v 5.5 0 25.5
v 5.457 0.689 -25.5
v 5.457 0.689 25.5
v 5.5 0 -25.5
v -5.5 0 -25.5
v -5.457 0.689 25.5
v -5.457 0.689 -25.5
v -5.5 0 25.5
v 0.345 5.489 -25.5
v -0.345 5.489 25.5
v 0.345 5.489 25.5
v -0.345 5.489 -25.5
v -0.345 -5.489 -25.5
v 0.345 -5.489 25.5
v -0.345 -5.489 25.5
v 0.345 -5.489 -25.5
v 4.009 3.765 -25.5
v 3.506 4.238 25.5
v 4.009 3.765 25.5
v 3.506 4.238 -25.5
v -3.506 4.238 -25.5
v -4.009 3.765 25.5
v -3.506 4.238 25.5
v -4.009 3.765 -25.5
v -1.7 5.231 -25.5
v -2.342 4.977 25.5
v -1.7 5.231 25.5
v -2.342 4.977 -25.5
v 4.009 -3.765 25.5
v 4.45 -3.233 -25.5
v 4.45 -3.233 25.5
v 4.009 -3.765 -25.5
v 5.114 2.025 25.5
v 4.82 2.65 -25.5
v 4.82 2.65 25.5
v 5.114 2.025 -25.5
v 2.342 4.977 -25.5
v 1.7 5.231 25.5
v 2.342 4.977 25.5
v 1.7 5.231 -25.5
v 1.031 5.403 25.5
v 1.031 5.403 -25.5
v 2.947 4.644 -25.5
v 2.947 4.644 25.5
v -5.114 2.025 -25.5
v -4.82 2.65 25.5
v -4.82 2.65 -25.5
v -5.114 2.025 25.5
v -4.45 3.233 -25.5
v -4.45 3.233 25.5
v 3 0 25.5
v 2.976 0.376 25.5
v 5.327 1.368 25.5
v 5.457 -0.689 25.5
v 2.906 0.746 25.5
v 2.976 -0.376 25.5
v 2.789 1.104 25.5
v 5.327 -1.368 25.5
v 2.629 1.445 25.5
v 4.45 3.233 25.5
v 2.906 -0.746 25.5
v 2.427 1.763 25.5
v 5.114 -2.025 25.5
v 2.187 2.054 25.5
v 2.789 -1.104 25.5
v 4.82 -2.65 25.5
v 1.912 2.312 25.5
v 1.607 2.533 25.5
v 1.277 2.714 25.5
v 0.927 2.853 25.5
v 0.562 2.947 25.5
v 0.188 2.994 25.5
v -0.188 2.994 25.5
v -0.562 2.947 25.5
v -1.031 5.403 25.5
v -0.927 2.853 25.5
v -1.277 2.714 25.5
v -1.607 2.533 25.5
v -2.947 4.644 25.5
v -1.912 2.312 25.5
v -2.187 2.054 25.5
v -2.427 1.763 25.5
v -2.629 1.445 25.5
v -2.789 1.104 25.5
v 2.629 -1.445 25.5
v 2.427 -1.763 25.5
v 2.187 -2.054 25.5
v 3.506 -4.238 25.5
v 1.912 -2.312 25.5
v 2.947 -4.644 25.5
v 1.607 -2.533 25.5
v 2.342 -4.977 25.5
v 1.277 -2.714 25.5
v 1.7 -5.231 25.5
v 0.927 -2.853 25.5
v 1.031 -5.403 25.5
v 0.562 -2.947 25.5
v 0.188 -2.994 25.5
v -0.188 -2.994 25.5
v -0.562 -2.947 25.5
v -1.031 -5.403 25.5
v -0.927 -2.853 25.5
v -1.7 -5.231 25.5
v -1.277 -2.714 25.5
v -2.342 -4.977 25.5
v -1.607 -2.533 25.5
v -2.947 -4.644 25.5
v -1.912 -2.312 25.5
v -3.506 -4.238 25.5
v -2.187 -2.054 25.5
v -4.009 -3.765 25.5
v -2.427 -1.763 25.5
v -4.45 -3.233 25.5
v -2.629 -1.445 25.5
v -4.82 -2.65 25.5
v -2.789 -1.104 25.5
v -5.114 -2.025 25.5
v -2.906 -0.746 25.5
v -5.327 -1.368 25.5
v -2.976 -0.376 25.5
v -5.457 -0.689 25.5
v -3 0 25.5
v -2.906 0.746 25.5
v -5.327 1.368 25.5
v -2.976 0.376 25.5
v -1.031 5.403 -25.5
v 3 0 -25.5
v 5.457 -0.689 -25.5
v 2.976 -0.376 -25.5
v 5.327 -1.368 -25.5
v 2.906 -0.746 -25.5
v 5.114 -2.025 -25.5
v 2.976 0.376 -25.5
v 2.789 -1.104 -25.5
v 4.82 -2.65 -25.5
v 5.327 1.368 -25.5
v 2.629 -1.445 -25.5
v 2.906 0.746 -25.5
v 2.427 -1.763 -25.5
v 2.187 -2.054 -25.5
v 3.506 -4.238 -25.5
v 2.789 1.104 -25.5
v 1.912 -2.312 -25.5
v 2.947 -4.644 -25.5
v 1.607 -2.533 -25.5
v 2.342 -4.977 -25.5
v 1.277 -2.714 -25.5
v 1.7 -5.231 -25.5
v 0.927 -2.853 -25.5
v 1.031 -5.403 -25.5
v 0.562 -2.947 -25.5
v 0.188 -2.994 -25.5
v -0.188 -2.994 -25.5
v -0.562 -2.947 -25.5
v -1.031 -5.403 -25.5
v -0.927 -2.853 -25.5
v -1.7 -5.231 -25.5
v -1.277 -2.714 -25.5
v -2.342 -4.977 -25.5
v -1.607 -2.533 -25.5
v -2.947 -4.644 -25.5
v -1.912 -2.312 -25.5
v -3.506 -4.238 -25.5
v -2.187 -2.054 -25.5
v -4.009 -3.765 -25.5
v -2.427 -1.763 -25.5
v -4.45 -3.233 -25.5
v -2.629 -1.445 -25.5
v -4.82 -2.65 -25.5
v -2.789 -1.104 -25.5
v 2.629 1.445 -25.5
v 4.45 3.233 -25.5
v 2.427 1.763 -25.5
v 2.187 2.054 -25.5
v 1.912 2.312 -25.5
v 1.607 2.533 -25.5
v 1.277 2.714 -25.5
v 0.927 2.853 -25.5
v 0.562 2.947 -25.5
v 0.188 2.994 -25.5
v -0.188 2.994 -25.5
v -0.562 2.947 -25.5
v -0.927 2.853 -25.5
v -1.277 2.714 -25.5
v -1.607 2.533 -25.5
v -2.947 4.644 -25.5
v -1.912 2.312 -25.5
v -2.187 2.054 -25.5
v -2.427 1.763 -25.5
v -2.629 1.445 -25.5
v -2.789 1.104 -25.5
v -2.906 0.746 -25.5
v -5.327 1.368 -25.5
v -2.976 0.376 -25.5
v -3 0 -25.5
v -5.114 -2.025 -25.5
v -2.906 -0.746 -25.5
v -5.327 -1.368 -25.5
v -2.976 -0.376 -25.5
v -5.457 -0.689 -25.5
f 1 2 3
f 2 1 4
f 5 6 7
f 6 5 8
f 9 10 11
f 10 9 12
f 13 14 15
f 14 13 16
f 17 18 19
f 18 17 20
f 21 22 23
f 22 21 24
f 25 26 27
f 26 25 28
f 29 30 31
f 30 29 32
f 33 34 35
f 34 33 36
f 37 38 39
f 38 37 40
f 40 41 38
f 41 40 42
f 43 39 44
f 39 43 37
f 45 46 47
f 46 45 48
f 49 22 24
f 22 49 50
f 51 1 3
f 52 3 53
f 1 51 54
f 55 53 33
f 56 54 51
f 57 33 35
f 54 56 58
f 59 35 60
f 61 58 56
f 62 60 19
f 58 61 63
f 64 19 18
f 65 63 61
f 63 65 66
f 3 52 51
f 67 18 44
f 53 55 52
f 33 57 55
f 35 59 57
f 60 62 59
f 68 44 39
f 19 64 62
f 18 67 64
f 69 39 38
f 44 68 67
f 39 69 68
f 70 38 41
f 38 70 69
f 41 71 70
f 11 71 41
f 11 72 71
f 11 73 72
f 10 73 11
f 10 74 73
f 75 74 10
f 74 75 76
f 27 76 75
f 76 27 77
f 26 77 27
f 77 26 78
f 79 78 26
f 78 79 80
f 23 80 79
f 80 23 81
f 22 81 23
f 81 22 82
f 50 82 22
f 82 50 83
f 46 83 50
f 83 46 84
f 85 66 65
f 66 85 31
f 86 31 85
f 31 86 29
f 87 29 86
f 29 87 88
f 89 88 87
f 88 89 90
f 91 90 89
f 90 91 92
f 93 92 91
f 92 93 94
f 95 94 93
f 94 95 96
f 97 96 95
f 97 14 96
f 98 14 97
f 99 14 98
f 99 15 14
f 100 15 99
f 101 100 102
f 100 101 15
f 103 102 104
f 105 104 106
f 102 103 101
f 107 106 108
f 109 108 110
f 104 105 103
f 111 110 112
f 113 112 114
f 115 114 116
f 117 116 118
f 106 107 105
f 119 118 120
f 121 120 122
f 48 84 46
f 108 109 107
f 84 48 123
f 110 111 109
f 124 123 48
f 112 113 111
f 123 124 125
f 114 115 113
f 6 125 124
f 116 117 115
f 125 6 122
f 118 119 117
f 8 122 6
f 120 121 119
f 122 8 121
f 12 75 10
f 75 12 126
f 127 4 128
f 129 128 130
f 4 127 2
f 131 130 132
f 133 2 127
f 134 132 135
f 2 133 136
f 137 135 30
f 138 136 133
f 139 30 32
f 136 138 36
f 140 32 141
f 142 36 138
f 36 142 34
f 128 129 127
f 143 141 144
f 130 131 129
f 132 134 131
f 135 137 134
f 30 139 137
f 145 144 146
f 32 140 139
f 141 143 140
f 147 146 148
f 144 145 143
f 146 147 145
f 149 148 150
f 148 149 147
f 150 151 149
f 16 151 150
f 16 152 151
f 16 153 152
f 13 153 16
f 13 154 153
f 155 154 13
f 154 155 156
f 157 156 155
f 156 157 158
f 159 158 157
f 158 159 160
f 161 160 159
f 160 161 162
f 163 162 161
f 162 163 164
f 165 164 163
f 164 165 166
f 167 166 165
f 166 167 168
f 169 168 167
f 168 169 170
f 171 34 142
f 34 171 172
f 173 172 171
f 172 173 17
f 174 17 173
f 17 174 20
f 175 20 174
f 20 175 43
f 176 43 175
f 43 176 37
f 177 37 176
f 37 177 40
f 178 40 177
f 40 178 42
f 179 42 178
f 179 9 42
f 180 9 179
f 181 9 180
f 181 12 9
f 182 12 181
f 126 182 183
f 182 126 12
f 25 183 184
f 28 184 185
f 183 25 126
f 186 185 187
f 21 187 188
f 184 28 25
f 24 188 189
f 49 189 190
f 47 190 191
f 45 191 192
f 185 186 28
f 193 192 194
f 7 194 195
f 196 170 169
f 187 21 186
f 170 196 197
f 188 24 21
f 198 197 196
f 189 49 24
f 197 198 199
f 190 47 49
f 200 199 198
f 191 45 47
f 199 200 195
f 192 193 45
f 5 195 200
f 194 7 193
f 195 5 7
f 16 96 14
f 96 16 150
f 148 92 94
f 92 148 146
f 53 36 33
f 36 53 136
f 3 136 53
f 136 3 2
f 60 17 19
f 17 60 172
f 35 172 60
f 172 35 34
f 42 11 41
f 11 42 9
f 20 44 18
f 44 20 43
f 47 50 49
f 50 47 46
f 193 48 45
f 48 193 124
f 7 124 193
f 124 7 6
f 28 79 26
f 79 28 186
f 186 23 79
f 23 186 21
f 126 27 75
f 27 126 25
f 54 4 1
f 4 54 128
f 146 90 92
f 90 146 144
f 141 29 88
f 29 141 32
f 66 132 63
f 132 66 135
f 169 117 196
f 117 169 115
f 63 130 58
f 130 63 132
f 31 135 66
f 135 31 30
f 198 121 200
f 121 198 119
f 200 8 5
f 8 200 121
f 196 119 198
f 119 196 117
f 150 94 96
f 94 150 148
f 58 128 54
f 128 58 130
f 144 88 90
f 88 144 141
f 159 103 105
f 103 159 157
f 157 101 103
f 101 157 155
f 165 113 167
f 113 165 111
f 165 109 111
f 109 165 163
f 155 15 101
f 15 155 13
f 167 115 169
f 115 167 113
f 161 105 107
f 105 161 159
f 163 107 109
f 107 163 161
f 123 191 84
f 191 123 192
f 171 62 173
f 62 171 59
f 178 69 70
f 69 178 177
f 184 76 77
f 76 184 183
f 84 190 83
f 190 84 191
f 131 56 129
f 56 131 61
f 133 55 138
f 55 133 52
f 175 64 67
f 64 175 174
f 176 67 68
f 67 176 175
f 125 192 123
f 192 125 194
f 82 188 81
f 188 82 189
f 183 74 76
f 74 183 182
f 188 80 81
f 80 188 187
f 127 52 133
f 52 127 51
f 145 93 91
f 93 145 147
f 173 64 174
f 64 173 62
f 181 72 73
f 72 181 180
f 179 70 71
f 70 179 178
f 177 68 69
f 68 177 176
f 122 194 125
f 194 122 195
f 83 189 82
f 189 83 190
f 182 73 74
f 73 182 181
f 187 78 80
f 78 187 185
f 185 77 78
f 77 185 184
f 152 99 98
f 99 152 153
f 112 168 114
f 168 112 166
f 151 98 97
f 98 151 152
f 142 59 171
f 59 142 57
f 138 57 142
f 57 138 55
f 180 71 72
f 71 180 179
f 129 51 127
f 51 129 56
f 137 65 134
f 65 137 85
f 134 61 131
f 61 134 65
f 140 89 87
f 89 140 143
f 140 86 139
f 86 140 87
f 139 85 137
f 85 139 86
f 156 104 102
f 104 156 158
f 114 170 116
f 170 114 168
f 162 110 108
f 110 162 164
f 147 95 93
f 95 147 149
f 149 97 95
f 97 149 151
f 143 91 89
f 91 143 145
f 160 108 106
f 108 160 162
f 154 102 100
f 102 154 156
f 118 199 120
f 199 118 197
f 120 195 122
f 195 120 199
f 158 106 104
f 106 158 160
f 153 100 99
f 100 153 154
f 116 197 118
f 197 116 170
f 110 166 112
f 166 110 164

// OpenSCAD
$fn = 50;


difference() {
	union() {
		translate(v = [0, 0, -25.5000000000]) {
			cylinder(h = 51, r = 5.5000000000);
		}
	}
	union() {
		translate(v = [0, 0, -100.0000000000]) {
			cylinder(h = 200, r = 3.0000000000);
		}
	}
}
